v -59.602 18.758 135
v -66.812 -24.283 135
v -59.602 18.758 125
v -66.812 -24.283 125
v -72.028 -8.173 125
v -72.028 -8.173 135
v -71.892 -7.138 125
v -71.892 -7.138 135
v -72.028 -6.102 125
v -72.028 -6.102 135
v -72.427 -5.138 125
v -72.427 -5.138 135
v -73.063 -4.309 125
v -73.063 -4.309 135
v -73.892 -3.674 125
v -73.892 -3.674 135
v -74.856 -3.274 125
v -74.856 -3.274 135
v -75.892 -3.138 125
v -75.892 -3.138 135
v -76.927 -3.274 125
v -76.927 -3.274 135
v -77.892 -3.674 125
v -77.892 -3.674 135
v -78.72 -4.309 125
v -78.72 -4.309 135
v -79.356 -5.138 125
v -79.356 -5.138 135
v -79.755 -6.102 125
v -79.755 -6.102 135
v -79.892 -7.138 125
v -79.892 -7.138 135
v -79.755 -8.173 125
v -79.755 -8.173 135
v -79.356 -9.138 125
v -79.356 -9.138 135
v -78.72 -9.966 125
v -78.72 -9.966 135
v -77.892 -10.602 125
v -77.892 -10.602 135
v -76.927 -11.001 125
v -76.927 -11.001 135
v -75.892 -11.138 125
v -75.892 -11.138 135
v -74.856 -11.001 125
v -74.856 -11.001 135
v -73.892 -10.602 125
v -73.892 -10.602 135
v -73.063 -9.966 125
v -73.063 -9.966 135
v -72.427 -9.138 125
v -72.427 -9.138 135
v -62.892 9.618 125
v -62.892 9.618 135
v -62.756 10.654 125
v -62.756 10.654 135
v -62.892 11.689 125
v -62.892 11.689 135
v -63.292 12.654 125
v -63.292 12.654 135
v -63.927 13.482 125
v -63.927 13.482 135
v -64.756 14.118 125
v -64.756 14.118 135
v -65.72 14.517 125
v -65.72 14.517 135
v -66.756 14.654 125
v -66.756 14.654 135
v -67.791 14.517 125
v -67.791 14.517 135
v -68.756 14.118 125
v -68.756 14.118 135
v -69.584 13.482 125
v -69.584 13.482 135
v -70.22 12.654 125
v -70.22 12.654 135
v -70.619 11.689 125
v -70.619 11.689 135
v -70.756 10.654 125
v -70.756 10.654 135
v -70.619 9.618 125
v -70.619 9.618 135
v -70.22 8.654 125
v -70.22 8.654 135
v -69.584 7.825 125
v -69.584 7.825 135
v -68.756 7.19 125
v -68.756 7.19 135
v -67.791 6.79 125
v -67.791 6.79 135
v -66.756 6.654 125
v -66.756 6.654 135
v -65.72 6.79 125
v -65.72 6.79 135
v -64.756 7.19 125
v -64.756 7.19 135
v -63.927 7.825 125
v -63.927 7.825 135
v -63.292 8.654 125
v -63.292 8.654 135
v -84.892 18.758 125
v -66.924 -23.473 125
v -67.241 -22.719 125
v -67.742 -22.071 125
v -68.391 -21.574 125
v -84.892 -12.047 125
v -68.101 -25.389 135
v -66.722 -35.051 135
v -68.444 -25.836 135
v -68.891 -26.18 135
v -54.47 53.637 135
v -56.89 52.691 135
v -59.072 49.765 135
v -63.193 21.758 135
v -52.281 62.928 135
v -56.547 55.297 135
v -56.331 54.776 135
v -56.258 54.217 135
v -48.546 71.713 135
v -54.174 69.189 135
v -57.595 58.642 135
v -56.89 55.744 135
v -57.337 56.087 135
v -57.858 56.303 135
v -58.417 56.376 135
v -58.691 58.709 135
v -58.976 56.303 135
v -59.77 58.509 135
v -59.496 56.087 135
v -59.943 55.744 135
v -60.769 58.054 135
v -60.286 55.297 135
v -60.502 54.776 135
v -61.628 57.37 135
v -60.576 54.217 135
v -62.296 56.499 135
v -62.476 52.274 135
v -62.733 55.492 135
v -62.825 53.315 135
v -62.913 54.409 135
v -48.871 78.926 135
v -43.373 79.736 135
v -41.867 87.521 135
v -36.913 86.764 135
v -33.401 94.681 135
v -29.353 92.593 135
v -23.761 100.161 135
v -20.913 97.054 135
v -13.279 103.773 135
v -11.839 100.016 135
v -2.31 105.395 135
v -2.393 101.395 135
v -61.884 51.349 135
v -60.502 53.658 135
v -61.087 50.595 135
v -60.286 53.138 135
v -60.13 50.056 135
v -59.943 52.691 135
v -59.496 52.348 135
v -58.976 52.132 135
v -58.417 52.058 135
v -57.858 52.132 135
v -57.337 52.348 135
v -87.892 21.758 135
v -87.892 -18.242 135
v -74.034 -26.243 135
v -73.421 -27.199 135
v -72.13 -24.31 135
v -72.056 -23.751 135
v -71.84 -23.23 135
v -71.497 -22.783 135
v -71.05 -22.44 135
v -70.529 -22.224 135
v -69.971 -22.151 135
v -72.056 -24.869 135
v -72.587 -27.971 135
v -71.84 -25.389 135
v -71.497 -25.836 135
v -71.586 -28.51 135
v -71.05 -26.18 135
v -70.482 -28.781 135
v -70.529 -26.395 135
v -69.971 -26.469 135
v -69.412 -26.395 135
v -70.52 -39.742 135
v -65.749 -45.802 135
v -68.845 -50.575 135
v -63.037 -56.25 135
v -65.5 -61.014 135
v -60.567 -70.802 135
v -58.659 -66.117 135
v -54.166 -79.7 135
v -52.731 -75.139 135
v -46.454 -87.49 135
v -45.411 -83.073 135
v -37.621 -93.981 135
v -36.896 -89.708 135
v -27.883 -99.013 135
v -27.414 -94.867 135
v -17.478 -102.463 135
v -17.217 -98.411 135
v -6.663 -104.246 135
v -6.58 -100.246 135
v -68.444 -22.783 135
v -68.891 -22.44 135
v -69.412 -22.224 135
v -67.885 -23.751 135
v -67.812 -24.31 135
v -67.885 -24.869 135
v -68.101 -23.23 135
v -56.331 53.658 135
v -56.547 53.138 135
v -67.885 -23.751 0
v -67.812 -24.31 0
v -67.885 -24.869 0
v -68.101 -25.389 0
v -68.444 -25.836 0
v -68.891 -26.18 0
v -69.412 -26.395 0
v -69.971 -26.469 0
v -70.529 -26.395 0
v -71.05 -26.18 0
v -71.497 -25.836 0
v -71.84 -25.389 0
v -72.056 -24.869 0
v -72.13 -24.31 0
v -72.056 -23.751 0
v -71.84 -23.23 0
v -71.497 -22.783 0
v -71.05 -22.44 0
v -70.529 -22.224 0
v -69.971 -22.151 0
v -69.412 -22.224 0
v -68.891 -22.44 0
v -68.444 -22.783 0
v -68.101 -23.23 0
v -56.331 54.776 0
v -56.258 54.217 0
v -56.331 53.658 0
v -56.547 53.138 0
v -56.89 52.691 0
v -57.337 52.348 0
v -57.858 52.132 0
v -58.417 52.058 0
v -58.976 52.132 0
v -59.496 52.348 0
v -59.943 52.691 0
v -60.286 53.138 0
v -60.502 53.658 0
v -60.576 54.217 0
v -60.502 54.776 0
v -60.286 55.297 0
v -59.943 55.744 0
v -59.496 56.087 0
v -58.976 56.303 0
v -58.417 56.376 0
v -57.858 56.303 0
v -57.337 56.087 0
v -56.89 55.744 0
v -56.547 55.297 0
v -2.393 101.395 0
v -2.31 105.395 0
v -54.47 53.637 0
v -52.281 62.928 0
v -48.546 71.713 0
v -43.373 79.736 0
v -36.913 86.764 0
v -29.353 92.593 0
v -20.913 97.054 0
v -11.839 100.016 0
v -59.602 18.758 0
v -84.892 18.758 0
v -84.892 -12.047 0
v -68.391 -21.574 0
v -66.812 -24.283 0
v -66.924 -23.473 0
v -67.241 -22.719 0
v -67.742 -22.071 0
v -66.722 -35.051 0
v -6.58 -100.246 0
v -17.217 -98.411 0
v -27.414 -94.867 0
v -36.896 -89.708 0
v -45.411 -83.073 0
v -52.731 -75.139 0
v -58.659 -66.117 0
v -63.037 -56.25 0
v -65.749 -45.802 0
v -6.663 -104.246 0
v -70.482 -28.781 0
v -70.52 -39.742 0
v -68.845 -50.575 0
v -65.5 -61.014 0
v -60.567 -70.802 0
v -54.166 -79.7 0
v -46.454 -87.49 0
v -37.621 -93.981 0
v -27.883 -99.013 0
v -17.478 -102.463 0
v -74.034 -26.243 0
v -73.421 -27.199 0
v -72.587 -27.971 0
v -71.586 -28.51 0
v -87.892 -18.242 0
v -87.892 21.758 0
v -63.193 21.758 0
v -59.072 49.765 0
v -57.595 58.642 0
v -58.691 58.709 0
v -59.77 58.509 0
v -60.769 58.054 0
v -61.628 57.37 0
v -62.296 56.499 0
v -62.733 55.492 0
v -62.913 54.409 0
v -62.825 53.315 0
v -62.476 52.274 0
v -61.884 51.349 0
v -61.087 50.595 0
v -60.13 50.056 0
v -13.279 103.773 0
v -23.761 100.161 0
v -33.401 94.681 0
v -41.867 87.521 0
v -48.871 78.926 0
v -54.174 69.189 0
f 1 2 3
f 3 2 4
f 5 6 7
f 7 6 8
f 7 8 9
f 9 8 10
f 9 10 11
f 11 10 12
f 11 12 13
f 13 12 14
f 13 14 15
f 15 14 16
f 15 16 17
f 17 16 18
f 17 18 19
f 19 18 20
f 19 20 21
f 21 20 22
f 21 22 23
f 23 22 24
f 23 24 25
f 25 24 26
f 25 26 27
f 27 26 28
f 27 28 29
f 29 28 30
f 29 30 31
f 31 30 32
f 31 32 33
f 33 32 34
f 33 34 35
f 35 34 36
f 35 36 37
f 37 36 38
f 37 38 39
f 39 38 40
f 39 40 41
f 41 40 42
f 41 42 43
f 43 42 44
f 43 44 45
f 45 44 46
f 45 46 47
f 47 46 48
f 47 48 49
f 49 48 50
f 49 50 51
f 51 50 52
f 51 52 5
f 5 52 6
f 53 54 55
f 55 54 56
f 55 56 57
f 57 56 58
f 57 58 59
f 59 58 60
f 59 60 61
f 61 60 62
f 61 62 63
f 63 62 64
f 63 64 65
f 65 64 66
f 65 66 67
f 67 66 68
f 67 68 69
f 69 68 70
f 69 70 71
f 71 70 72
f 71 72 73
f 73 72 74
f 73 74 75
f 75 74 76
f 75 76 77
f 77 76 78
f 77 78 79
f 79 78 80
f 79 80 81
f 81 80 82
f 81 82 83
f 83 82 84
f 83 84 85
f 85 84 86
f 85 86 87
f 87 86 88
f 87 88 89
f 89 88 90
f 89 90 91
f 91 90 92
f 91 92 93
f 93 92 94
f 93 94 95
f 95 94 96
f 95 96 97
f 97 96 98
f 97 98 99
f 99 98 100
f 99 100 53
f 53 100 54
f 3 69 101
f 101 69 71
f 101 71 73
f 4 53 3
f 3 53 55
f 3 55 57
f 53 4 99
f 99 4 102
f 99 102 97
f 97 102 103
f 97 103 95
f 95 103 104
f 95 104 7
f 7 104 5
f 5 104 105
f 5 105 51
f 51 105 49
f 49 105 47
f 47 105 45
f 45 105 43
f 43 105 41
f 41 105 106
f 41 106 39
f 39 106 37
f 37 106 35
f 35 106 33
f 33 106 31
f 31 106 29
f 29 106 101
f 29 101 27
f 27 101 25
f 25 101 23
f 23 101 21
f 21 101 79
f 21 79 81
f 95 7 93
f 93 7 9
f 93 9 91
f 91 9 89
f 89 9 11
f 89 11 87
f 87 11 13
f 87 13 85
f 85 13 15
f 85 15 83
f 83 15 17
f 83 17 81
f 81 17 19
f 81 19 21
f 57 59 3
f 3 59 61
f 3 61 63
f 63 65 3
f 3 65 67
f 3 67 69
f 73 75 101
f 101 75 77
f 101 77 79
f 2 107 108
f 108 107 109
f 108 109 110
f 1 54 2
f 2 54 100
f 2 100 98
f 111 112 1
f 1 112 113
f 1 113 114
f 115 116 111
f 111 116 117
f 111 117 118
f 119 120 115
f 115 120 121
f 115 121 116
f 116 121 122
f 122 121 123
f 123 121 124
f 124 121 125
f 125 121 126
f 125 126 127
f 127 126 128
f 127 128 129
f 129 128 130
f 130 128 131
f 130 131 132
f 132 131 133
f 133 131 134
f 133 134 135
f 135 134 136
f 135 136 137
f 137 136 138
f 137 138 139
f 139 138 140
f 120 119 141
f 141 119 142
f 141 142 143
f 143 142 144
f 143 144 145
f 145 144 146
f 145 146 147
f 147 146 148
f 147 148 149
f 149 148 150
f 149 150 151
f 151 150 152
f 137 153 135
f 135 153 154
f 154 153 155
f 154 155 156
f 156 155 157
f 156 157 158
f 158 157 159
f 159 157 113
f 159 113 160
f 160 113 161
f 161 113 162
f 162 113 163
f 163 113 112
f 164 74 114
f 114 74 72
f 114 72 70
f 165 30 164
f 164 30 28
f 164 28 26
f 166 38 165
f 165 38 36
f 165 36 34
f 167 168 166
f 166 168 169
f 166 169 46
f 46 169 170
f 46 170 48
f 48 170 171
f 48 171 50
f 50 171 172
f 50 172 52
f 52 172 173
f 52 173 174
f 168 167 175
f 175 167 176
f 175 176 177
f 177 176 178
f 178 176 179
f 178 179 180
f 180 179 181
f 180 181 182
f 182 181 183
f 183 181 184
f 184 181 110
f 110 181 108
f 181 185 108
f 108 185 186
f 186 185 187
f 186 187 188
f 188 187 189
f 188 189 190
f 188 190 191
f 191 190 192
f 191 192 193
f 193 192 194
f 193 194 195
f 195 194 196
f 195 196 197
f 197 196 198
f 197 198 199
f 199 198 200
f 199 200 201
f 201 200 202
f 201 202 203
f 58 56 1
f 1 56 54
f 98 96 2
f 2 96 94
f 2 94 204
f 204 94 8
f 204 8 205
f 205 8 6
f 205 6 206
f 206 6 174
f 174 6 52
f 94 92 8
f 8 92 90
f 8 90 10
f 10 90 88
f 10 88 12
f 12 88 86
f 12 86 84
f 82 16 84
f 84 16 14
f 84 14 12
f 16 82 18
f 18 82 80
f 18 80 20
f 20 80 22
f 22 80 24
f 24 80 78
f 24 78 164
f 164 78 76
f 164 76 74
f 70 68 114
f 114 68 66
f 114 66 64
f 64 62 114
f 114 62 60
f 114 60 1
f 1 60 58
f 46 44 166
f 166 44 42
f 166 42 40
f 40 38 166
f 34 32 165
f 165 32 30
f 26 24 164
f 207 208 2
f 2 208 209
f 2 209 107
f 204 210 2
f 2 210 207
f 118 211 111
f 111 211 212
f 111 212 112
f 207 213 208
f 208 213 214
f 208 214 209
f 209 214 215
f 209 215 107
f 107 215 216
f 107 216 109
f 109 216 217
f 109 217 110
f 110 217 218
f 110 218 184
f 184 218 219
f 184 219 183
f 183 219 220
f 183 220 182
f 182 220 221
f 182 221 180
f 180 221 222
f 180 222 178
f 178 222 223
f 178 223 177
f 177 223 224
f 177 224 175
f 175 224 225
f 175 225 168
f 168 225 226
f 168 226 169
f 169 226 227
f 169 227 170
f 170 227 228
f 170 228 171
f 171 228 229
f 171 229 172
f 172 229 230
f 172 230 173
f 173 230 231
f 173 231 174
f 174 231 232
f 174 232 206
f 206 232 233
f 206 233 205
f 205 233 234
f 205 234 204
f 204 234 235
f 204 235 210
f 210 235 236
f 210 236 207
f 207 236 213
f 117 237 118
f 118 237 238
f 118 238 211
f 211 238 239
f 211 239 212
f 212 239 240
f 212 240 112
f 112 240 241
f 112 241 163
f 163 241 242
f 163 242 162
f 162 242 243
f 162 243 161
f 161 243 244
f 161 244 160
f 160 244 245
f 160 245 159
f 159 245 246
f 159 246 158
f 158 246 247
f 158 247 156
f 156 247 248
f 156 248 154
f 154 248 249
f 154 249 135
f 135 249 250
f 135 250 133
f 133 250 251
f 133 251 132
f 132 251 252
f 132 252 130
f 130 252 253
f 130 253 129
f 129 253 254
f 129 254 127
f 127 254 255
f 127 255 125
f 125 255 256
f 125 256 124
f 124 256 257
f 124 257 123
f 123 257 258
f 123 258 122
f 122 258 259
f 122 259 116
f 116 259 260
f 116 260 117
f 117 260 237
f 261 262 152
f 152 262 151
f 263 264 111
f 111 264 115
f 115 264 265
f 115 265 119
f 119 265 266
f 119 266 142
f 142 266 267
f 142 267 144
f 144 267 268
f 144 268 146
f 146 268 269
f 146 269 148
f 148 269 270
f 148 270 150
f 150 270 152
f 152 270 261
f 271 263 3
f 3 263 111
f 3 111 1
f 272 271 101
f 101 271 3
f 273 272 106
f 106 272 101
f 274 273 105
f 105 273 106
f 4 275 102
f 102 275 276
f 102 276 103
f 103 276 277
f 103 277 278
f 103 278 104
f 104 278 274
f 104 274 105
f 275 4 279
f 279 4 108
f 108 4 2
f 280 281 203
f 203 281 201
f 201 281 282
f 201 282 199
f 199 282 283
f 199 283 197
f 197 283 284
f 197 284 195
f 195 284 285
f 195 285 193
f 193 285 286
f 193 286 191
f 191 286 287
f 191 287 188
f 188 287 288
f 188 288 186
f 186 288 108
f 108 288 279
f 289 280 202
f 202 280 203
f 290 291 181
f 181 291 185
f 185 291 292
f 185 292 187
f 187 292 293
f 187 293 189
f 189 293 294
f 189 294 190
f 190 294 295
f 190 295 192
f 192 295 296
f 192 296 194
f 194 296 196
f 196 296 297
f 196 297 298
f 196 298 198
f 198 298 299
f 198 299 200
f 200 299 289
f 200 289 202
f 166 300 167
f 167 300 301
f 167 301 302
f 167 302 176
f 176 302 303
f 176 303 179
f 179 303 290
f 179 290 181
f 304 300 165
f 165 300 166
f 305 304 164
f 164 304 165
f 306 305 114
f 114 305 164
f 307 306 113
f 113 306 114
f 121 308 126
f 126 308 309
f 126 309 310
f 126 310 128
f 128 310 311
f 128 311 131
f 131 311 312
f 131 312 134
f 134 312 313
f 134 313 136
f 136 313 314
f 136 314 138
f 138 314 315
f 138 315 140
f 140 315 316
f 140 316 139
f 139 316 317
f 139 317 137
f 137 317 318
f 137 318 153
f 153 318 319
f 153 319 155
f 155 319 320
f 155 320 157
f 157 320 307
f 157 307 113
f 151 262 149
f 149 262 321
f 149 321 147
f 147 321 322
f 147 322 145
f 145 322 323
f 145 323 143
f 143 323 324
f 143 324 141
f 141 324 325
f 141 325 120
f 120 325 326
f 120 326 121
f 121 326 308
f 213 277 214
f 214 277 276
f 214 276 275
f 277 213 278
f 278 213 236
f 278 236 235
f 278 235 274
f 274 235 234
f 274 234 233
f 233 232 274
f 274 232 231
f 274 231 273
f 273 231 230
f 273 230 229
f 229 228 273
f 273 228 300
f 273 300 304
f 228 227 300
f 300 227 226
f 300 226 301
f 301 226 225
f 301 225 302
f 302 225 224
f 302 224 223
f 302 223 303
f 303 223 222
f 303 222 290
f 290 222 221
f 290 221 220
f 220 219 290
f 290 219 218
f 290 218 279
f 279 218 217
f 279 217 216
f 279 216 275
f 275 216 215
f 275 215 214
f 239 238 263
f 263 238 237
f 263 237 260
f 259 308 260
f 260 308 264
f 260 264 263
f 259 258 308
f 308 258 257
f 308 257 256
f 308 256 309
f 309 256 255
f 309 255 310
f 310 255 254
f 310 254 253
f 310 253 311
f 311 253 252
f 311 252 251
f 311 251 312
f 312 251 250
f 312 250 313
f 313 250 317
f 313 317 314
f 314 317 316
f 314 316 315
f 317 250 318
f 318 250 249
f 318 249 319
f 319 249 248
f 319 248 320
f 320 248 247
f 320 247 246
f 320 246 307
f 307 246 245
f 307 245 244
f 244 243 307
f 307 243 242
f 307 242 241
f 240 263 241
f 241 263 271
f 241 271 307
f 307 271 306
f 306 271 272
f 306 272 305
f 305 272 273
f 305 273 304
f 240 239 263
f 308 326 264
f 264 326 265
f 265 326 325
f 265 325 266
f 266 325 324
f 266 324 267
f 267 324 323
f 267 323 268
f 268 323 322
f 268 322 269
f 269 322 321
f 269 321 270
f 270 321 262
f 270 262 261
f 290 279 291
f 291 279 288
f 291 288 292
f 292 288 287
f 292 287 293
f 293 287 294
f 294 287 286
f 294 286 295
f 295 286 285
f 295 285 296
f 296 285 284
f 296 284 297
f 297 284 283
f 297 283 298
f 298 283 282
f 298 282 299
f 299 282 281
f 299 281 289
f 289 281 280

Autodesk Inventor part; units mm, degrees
ref_plane "YZ Plane" through (0, 0, 0) normal (1, 0, 0) x (0, 1, 0)
ref_plane "XZ Plane" through (0, 0, 0) normal (0, 1, 0) x (-1, 0, 0)
ref_plane "Work Plane1" through (0, 0, 0) normal (0, 0, 1) x (1, 0, 0)
sketch "Sketch1" plane through (0, 0, 0) normal (0, 0, 1) x (1, 0, 0)
  circle A0 centre (-55.8916, -14.7421) radius 1.397 projected
  circle A1 centre (-83.8916, 18.2579) radius 1.397 construction
  circle A2 centre (-83.8916, -14.7421) radius 1.397 construction
  circle A3 centre (-55.8916, 18.2579) radius 1.397 projected
  circle A4 centre (2.1895, 105.4705) radius 2.159 projected
  circle A5 centre (-2.169, -104.4843) radius 2.159 projected
  circle A6 centre (60.6164, 51.7463) radius 2.159 projected
  circle A7 centre (-58.4167, 54.2173) radius 2.159 projected
  arc A8 (6.6818, 105.2084) -> (-2.3099, 105.3951) centre (2.1895, 105.4705) ccw projected
  arc A9 (-2.3099, 105.3951) -> (-57.5952, 58.6417) centre (0.9442, 45.4834) ccw projected
  arc A10 (-57.5952, 58.6417) -> (-59.0718, 49.7652) centre (-58.4167, 54.2173) ccw projected
  line L0 (-59.0718, 49.7652) -> (-63.1925, 21.7579) projected
  line L1 (-87.8916, 21.7579) -> (-63.1925, 21.7579) projected
  line L2 (-87.8916, -18.2421) -> (-87.8916, 21.7579) projected
  line L3 (-87.8916, -18.2421) -> (-74.0344, -26.2425) projected
  arc A11 (-74.0344, -26.2425) -> (-70.4822, -28.7807) centre (-69.9706, -24.3098) ccw projected
  arc A12 (-70.4822, -28.7807) -> (-6.6627, -104.2463) centre (-0.7162, -34.4994) ccw projected
  arc A13 (-6.6627, -104.2463) -> (2.3307, -104.433) centre (-2.169, -104.4843) ccw projected
  arc A14 (2.3307, -104.433) -> (69.2271, -31.6809) centre (-0.7162, -34.4994) ccw projected
  arc A15 (69.2271, -31.6809) -> (68.4317, -22.7173) centre (68.9014, -27.1927) ccw projected
  line L4 (68.4317, -22.7173) -> (61.0862, 47.2708) projected
  arc A16 (61.0862, 47.2708) -> (59.9792, 56.2009) centre (60.6164, 51.7463) ccw projected
  arc A17 (59.9792, 56.2009) -> (6.6818, 105.2084) centre (0.9442, 45.4834) ccw projected
  circle A18 centre (-69.9706, -24.3098) radius 2.159 projected
  circle A19 centre (68.9014, -27.1927) radius 2.159 projected
  circle A20 centre (0.9442, 45.4834) radius 17.5 projected
  circle A21 centre (-0.7162, -34.4994) radius 17.5 projected
  circle A22 centre (-66.7556, 10.6536) radius 4 projected
  circle A23 centre (-75.8916, -7.1378) radius 4 projected
  circle A24 centre (68.9014, -27.1927) radius 2.159 construction
  circle A25 centre (60.6164, 51.7463) radius 2.159 construction
  circle A26 centre (-2.169, -104.4843) radius 2.159 construction
  circle A27 centre (2.1895, 105.4705) radius 2.159 construction
  arc A28 (6.6818, 105.2084) -> (-2.3099, 105.3951) centre (2.1895, 105.4705) ccw construction
  arc A29 (59.9792, 56.2009) -> (6.6818, 105.2084) centre (0.9442, 45.4834) ccw construction
  arc A30 (61.0862, 47.2708) -> (59.9792, 56.2009) centre (60.6164, 51.7463) ccw construction
  line L5 (61.0862, 47.2708) -> (68.4317, -22.7173) construction
  arc A31 (69.2271, -31.6809) -> (68.4317, -22.7173) centre (68.9014, -27.1927) ccw construction
  arc A32 (2.3307, -104.433) -> (69.2271, -31.6809) centre (-0.7162, -34.4994) ccw construction
  arc A33 (-6.6627, -104.2463) -> (2.3307, -104.433) centre (-2.169, -104.4843) ccw construction
  line L6 (-6.6627, -104.2463) -> (-6.5797, -100.2463) construction
  arc A34 (-6.5797, -100.2463) -> (64.9314, -27.6121) centre (-0.7162, -34.4994) ccw construction
  line L7 (64.9314, -27.6121) -> (56.6497, 51.3276) construction
  arc A35 (56.6497, 51.3276) -> (-2.393, 101.3951) centre (0.9442, 45.4834) ccw construction
  line L8 (-2.393, 101.3951) -> (-2.3099, 105.3951) construction
  line L9 (-6.6627, -104.2463) -> (-6.5797, -100.2463)
  line L10 (-2.393, 101.3951) -> (-2.3099, 105.3951)
  arc A36 (-2.393, 101.3951) -> (-54.4704, 53.6367) centre (0.9442, 45.4834) ccw
  line L11 (-54.4704, 53.6367) -> (-59.6022, 18.7579)
  line L12 (-59.6022, 18.7579) -> (-84.8916, 18.7579)
  line L13 (-84.8916, 18.7579) -> (-84.8916, -12.0475)
  arc A37 (-66.7218, -35.0506) -> (-6.5797, -100.2463) centre (-0.7162, -34.4994) ccw
  arc A38 (-66.8117, -24.2835) -> (-68.3911, -21.5741) centre (-69.9706, -24.3098) ccw
  line L14 (-66.7218, -35.0506) -> (-66.8117, -24.2835)
  line L15 (-84.8916, -12.0475) -> (-68.3911, -21.5741)
  point P0 (0, 0)
  dimension "d0" = 1
  dimension "d1" = 3
  dimension "d2" = 3
extrude "Extrusion1" add sketch "Sketch1" along normal blind 125 contours L10 A36 L11 L12 L13 L15 A38 L14 A37 L9 A12 A11 L3 L2 L1 L0 A10 A9
sketch "Sketch2" plane through (0, 0, 125) normal (0, 0, 1) x (1, 0, 0)
  circle A0 centre (-69.9706, -24.3098) radius 2.159 projected
  circle A1 centre (-58.4167, 54.2173) radius 2.159 projected
  arc A2 (-2.3099, 105.3951) -> (-57.5952, 58.6417) centre (0.9442, 45.4834) ccw projected
  arc A3 (-57.5952, 58.6417) -> (-59.0718, 49.7652) centre (-58.4167, 54.2173) ccw projected
  line L0 (-59.0718, 49.7652) -> (-63.1925, 21.7579) projected
  line L1 (-63.1925, 21.7579) -> (-87.8916, 21.7579) projected
  line L2 (-87.8916, 21.7579) -> (-87.8916, -18.2421) projected
  line L3 (-87.8916, -18.2421) -> (-74.0344, -26.2425) projected
  arc A4 (-74.0344, -26.2425) -> (-70.4822, -28.7807) centre (-69.9706, -24.3098) ccw projected
  arc A5 (-70.4822, -28.7807) -> (-6.6627, -104.2463) centre (-0.7162, -34.4994) ccw projected
  line L4 (-6.6627, -104.2463) -> (-6.5797, -100.2463) projected
  arc A6 (-66.7218, -35.0506) -> (-6.5797, -100.2463) centre (-0.7162, -34.4994) ccw projected
  line L5 (-66.7218, -35.0506) -> (-66.8117, -24.2835) projected
  arc A7 (-66.8117, -24.2835) -> (-68.3911, -21.5741) centre (-69.9706, -24.3098) ccw projected
  line L6 (-68.3911, -21.5741) -> (-84.8916, -12.0475) projected
  line L7 (-84.8916, -12.0475) -> (-84.8916, 18.7579) projected
  line L8 (-84.8916, 18.7579) -> (-59.6022, 18.7579) projected
  line L9 (-59.6022, 18.7579) -> (-54.4704, 53.6367) projected
  arc A8 (-2.393, 101.3951) -> (-54.4704, 53.6367) centre (0.9442, 45.4834) ccw projected
  line L10 (-2.393, 101.3951) -> (-2.3099, 105.3951) projected
  circle A9 centre (-66.7556, 10.6536) radius 4 projected
  circle A10 centre (-75.8916, -7.1378) radius 4 projected
  line L11 (-66.7218, -35.0506) -> (-66.8117, -24.2835) projected
  line L12 (-59.6022, 18.7579) -> (-66.8117, -24.2835)
  point P0 (0, 0)
ref_plane "Work Plane2" through (-78.4932, -111.5319, 135) normal (0, 0, -1) x (0, 1, 0)
extrude "Extrusion2" add sketch "Sketch2" along normal up to surface (10 mm away)
properties part number "case top half"
